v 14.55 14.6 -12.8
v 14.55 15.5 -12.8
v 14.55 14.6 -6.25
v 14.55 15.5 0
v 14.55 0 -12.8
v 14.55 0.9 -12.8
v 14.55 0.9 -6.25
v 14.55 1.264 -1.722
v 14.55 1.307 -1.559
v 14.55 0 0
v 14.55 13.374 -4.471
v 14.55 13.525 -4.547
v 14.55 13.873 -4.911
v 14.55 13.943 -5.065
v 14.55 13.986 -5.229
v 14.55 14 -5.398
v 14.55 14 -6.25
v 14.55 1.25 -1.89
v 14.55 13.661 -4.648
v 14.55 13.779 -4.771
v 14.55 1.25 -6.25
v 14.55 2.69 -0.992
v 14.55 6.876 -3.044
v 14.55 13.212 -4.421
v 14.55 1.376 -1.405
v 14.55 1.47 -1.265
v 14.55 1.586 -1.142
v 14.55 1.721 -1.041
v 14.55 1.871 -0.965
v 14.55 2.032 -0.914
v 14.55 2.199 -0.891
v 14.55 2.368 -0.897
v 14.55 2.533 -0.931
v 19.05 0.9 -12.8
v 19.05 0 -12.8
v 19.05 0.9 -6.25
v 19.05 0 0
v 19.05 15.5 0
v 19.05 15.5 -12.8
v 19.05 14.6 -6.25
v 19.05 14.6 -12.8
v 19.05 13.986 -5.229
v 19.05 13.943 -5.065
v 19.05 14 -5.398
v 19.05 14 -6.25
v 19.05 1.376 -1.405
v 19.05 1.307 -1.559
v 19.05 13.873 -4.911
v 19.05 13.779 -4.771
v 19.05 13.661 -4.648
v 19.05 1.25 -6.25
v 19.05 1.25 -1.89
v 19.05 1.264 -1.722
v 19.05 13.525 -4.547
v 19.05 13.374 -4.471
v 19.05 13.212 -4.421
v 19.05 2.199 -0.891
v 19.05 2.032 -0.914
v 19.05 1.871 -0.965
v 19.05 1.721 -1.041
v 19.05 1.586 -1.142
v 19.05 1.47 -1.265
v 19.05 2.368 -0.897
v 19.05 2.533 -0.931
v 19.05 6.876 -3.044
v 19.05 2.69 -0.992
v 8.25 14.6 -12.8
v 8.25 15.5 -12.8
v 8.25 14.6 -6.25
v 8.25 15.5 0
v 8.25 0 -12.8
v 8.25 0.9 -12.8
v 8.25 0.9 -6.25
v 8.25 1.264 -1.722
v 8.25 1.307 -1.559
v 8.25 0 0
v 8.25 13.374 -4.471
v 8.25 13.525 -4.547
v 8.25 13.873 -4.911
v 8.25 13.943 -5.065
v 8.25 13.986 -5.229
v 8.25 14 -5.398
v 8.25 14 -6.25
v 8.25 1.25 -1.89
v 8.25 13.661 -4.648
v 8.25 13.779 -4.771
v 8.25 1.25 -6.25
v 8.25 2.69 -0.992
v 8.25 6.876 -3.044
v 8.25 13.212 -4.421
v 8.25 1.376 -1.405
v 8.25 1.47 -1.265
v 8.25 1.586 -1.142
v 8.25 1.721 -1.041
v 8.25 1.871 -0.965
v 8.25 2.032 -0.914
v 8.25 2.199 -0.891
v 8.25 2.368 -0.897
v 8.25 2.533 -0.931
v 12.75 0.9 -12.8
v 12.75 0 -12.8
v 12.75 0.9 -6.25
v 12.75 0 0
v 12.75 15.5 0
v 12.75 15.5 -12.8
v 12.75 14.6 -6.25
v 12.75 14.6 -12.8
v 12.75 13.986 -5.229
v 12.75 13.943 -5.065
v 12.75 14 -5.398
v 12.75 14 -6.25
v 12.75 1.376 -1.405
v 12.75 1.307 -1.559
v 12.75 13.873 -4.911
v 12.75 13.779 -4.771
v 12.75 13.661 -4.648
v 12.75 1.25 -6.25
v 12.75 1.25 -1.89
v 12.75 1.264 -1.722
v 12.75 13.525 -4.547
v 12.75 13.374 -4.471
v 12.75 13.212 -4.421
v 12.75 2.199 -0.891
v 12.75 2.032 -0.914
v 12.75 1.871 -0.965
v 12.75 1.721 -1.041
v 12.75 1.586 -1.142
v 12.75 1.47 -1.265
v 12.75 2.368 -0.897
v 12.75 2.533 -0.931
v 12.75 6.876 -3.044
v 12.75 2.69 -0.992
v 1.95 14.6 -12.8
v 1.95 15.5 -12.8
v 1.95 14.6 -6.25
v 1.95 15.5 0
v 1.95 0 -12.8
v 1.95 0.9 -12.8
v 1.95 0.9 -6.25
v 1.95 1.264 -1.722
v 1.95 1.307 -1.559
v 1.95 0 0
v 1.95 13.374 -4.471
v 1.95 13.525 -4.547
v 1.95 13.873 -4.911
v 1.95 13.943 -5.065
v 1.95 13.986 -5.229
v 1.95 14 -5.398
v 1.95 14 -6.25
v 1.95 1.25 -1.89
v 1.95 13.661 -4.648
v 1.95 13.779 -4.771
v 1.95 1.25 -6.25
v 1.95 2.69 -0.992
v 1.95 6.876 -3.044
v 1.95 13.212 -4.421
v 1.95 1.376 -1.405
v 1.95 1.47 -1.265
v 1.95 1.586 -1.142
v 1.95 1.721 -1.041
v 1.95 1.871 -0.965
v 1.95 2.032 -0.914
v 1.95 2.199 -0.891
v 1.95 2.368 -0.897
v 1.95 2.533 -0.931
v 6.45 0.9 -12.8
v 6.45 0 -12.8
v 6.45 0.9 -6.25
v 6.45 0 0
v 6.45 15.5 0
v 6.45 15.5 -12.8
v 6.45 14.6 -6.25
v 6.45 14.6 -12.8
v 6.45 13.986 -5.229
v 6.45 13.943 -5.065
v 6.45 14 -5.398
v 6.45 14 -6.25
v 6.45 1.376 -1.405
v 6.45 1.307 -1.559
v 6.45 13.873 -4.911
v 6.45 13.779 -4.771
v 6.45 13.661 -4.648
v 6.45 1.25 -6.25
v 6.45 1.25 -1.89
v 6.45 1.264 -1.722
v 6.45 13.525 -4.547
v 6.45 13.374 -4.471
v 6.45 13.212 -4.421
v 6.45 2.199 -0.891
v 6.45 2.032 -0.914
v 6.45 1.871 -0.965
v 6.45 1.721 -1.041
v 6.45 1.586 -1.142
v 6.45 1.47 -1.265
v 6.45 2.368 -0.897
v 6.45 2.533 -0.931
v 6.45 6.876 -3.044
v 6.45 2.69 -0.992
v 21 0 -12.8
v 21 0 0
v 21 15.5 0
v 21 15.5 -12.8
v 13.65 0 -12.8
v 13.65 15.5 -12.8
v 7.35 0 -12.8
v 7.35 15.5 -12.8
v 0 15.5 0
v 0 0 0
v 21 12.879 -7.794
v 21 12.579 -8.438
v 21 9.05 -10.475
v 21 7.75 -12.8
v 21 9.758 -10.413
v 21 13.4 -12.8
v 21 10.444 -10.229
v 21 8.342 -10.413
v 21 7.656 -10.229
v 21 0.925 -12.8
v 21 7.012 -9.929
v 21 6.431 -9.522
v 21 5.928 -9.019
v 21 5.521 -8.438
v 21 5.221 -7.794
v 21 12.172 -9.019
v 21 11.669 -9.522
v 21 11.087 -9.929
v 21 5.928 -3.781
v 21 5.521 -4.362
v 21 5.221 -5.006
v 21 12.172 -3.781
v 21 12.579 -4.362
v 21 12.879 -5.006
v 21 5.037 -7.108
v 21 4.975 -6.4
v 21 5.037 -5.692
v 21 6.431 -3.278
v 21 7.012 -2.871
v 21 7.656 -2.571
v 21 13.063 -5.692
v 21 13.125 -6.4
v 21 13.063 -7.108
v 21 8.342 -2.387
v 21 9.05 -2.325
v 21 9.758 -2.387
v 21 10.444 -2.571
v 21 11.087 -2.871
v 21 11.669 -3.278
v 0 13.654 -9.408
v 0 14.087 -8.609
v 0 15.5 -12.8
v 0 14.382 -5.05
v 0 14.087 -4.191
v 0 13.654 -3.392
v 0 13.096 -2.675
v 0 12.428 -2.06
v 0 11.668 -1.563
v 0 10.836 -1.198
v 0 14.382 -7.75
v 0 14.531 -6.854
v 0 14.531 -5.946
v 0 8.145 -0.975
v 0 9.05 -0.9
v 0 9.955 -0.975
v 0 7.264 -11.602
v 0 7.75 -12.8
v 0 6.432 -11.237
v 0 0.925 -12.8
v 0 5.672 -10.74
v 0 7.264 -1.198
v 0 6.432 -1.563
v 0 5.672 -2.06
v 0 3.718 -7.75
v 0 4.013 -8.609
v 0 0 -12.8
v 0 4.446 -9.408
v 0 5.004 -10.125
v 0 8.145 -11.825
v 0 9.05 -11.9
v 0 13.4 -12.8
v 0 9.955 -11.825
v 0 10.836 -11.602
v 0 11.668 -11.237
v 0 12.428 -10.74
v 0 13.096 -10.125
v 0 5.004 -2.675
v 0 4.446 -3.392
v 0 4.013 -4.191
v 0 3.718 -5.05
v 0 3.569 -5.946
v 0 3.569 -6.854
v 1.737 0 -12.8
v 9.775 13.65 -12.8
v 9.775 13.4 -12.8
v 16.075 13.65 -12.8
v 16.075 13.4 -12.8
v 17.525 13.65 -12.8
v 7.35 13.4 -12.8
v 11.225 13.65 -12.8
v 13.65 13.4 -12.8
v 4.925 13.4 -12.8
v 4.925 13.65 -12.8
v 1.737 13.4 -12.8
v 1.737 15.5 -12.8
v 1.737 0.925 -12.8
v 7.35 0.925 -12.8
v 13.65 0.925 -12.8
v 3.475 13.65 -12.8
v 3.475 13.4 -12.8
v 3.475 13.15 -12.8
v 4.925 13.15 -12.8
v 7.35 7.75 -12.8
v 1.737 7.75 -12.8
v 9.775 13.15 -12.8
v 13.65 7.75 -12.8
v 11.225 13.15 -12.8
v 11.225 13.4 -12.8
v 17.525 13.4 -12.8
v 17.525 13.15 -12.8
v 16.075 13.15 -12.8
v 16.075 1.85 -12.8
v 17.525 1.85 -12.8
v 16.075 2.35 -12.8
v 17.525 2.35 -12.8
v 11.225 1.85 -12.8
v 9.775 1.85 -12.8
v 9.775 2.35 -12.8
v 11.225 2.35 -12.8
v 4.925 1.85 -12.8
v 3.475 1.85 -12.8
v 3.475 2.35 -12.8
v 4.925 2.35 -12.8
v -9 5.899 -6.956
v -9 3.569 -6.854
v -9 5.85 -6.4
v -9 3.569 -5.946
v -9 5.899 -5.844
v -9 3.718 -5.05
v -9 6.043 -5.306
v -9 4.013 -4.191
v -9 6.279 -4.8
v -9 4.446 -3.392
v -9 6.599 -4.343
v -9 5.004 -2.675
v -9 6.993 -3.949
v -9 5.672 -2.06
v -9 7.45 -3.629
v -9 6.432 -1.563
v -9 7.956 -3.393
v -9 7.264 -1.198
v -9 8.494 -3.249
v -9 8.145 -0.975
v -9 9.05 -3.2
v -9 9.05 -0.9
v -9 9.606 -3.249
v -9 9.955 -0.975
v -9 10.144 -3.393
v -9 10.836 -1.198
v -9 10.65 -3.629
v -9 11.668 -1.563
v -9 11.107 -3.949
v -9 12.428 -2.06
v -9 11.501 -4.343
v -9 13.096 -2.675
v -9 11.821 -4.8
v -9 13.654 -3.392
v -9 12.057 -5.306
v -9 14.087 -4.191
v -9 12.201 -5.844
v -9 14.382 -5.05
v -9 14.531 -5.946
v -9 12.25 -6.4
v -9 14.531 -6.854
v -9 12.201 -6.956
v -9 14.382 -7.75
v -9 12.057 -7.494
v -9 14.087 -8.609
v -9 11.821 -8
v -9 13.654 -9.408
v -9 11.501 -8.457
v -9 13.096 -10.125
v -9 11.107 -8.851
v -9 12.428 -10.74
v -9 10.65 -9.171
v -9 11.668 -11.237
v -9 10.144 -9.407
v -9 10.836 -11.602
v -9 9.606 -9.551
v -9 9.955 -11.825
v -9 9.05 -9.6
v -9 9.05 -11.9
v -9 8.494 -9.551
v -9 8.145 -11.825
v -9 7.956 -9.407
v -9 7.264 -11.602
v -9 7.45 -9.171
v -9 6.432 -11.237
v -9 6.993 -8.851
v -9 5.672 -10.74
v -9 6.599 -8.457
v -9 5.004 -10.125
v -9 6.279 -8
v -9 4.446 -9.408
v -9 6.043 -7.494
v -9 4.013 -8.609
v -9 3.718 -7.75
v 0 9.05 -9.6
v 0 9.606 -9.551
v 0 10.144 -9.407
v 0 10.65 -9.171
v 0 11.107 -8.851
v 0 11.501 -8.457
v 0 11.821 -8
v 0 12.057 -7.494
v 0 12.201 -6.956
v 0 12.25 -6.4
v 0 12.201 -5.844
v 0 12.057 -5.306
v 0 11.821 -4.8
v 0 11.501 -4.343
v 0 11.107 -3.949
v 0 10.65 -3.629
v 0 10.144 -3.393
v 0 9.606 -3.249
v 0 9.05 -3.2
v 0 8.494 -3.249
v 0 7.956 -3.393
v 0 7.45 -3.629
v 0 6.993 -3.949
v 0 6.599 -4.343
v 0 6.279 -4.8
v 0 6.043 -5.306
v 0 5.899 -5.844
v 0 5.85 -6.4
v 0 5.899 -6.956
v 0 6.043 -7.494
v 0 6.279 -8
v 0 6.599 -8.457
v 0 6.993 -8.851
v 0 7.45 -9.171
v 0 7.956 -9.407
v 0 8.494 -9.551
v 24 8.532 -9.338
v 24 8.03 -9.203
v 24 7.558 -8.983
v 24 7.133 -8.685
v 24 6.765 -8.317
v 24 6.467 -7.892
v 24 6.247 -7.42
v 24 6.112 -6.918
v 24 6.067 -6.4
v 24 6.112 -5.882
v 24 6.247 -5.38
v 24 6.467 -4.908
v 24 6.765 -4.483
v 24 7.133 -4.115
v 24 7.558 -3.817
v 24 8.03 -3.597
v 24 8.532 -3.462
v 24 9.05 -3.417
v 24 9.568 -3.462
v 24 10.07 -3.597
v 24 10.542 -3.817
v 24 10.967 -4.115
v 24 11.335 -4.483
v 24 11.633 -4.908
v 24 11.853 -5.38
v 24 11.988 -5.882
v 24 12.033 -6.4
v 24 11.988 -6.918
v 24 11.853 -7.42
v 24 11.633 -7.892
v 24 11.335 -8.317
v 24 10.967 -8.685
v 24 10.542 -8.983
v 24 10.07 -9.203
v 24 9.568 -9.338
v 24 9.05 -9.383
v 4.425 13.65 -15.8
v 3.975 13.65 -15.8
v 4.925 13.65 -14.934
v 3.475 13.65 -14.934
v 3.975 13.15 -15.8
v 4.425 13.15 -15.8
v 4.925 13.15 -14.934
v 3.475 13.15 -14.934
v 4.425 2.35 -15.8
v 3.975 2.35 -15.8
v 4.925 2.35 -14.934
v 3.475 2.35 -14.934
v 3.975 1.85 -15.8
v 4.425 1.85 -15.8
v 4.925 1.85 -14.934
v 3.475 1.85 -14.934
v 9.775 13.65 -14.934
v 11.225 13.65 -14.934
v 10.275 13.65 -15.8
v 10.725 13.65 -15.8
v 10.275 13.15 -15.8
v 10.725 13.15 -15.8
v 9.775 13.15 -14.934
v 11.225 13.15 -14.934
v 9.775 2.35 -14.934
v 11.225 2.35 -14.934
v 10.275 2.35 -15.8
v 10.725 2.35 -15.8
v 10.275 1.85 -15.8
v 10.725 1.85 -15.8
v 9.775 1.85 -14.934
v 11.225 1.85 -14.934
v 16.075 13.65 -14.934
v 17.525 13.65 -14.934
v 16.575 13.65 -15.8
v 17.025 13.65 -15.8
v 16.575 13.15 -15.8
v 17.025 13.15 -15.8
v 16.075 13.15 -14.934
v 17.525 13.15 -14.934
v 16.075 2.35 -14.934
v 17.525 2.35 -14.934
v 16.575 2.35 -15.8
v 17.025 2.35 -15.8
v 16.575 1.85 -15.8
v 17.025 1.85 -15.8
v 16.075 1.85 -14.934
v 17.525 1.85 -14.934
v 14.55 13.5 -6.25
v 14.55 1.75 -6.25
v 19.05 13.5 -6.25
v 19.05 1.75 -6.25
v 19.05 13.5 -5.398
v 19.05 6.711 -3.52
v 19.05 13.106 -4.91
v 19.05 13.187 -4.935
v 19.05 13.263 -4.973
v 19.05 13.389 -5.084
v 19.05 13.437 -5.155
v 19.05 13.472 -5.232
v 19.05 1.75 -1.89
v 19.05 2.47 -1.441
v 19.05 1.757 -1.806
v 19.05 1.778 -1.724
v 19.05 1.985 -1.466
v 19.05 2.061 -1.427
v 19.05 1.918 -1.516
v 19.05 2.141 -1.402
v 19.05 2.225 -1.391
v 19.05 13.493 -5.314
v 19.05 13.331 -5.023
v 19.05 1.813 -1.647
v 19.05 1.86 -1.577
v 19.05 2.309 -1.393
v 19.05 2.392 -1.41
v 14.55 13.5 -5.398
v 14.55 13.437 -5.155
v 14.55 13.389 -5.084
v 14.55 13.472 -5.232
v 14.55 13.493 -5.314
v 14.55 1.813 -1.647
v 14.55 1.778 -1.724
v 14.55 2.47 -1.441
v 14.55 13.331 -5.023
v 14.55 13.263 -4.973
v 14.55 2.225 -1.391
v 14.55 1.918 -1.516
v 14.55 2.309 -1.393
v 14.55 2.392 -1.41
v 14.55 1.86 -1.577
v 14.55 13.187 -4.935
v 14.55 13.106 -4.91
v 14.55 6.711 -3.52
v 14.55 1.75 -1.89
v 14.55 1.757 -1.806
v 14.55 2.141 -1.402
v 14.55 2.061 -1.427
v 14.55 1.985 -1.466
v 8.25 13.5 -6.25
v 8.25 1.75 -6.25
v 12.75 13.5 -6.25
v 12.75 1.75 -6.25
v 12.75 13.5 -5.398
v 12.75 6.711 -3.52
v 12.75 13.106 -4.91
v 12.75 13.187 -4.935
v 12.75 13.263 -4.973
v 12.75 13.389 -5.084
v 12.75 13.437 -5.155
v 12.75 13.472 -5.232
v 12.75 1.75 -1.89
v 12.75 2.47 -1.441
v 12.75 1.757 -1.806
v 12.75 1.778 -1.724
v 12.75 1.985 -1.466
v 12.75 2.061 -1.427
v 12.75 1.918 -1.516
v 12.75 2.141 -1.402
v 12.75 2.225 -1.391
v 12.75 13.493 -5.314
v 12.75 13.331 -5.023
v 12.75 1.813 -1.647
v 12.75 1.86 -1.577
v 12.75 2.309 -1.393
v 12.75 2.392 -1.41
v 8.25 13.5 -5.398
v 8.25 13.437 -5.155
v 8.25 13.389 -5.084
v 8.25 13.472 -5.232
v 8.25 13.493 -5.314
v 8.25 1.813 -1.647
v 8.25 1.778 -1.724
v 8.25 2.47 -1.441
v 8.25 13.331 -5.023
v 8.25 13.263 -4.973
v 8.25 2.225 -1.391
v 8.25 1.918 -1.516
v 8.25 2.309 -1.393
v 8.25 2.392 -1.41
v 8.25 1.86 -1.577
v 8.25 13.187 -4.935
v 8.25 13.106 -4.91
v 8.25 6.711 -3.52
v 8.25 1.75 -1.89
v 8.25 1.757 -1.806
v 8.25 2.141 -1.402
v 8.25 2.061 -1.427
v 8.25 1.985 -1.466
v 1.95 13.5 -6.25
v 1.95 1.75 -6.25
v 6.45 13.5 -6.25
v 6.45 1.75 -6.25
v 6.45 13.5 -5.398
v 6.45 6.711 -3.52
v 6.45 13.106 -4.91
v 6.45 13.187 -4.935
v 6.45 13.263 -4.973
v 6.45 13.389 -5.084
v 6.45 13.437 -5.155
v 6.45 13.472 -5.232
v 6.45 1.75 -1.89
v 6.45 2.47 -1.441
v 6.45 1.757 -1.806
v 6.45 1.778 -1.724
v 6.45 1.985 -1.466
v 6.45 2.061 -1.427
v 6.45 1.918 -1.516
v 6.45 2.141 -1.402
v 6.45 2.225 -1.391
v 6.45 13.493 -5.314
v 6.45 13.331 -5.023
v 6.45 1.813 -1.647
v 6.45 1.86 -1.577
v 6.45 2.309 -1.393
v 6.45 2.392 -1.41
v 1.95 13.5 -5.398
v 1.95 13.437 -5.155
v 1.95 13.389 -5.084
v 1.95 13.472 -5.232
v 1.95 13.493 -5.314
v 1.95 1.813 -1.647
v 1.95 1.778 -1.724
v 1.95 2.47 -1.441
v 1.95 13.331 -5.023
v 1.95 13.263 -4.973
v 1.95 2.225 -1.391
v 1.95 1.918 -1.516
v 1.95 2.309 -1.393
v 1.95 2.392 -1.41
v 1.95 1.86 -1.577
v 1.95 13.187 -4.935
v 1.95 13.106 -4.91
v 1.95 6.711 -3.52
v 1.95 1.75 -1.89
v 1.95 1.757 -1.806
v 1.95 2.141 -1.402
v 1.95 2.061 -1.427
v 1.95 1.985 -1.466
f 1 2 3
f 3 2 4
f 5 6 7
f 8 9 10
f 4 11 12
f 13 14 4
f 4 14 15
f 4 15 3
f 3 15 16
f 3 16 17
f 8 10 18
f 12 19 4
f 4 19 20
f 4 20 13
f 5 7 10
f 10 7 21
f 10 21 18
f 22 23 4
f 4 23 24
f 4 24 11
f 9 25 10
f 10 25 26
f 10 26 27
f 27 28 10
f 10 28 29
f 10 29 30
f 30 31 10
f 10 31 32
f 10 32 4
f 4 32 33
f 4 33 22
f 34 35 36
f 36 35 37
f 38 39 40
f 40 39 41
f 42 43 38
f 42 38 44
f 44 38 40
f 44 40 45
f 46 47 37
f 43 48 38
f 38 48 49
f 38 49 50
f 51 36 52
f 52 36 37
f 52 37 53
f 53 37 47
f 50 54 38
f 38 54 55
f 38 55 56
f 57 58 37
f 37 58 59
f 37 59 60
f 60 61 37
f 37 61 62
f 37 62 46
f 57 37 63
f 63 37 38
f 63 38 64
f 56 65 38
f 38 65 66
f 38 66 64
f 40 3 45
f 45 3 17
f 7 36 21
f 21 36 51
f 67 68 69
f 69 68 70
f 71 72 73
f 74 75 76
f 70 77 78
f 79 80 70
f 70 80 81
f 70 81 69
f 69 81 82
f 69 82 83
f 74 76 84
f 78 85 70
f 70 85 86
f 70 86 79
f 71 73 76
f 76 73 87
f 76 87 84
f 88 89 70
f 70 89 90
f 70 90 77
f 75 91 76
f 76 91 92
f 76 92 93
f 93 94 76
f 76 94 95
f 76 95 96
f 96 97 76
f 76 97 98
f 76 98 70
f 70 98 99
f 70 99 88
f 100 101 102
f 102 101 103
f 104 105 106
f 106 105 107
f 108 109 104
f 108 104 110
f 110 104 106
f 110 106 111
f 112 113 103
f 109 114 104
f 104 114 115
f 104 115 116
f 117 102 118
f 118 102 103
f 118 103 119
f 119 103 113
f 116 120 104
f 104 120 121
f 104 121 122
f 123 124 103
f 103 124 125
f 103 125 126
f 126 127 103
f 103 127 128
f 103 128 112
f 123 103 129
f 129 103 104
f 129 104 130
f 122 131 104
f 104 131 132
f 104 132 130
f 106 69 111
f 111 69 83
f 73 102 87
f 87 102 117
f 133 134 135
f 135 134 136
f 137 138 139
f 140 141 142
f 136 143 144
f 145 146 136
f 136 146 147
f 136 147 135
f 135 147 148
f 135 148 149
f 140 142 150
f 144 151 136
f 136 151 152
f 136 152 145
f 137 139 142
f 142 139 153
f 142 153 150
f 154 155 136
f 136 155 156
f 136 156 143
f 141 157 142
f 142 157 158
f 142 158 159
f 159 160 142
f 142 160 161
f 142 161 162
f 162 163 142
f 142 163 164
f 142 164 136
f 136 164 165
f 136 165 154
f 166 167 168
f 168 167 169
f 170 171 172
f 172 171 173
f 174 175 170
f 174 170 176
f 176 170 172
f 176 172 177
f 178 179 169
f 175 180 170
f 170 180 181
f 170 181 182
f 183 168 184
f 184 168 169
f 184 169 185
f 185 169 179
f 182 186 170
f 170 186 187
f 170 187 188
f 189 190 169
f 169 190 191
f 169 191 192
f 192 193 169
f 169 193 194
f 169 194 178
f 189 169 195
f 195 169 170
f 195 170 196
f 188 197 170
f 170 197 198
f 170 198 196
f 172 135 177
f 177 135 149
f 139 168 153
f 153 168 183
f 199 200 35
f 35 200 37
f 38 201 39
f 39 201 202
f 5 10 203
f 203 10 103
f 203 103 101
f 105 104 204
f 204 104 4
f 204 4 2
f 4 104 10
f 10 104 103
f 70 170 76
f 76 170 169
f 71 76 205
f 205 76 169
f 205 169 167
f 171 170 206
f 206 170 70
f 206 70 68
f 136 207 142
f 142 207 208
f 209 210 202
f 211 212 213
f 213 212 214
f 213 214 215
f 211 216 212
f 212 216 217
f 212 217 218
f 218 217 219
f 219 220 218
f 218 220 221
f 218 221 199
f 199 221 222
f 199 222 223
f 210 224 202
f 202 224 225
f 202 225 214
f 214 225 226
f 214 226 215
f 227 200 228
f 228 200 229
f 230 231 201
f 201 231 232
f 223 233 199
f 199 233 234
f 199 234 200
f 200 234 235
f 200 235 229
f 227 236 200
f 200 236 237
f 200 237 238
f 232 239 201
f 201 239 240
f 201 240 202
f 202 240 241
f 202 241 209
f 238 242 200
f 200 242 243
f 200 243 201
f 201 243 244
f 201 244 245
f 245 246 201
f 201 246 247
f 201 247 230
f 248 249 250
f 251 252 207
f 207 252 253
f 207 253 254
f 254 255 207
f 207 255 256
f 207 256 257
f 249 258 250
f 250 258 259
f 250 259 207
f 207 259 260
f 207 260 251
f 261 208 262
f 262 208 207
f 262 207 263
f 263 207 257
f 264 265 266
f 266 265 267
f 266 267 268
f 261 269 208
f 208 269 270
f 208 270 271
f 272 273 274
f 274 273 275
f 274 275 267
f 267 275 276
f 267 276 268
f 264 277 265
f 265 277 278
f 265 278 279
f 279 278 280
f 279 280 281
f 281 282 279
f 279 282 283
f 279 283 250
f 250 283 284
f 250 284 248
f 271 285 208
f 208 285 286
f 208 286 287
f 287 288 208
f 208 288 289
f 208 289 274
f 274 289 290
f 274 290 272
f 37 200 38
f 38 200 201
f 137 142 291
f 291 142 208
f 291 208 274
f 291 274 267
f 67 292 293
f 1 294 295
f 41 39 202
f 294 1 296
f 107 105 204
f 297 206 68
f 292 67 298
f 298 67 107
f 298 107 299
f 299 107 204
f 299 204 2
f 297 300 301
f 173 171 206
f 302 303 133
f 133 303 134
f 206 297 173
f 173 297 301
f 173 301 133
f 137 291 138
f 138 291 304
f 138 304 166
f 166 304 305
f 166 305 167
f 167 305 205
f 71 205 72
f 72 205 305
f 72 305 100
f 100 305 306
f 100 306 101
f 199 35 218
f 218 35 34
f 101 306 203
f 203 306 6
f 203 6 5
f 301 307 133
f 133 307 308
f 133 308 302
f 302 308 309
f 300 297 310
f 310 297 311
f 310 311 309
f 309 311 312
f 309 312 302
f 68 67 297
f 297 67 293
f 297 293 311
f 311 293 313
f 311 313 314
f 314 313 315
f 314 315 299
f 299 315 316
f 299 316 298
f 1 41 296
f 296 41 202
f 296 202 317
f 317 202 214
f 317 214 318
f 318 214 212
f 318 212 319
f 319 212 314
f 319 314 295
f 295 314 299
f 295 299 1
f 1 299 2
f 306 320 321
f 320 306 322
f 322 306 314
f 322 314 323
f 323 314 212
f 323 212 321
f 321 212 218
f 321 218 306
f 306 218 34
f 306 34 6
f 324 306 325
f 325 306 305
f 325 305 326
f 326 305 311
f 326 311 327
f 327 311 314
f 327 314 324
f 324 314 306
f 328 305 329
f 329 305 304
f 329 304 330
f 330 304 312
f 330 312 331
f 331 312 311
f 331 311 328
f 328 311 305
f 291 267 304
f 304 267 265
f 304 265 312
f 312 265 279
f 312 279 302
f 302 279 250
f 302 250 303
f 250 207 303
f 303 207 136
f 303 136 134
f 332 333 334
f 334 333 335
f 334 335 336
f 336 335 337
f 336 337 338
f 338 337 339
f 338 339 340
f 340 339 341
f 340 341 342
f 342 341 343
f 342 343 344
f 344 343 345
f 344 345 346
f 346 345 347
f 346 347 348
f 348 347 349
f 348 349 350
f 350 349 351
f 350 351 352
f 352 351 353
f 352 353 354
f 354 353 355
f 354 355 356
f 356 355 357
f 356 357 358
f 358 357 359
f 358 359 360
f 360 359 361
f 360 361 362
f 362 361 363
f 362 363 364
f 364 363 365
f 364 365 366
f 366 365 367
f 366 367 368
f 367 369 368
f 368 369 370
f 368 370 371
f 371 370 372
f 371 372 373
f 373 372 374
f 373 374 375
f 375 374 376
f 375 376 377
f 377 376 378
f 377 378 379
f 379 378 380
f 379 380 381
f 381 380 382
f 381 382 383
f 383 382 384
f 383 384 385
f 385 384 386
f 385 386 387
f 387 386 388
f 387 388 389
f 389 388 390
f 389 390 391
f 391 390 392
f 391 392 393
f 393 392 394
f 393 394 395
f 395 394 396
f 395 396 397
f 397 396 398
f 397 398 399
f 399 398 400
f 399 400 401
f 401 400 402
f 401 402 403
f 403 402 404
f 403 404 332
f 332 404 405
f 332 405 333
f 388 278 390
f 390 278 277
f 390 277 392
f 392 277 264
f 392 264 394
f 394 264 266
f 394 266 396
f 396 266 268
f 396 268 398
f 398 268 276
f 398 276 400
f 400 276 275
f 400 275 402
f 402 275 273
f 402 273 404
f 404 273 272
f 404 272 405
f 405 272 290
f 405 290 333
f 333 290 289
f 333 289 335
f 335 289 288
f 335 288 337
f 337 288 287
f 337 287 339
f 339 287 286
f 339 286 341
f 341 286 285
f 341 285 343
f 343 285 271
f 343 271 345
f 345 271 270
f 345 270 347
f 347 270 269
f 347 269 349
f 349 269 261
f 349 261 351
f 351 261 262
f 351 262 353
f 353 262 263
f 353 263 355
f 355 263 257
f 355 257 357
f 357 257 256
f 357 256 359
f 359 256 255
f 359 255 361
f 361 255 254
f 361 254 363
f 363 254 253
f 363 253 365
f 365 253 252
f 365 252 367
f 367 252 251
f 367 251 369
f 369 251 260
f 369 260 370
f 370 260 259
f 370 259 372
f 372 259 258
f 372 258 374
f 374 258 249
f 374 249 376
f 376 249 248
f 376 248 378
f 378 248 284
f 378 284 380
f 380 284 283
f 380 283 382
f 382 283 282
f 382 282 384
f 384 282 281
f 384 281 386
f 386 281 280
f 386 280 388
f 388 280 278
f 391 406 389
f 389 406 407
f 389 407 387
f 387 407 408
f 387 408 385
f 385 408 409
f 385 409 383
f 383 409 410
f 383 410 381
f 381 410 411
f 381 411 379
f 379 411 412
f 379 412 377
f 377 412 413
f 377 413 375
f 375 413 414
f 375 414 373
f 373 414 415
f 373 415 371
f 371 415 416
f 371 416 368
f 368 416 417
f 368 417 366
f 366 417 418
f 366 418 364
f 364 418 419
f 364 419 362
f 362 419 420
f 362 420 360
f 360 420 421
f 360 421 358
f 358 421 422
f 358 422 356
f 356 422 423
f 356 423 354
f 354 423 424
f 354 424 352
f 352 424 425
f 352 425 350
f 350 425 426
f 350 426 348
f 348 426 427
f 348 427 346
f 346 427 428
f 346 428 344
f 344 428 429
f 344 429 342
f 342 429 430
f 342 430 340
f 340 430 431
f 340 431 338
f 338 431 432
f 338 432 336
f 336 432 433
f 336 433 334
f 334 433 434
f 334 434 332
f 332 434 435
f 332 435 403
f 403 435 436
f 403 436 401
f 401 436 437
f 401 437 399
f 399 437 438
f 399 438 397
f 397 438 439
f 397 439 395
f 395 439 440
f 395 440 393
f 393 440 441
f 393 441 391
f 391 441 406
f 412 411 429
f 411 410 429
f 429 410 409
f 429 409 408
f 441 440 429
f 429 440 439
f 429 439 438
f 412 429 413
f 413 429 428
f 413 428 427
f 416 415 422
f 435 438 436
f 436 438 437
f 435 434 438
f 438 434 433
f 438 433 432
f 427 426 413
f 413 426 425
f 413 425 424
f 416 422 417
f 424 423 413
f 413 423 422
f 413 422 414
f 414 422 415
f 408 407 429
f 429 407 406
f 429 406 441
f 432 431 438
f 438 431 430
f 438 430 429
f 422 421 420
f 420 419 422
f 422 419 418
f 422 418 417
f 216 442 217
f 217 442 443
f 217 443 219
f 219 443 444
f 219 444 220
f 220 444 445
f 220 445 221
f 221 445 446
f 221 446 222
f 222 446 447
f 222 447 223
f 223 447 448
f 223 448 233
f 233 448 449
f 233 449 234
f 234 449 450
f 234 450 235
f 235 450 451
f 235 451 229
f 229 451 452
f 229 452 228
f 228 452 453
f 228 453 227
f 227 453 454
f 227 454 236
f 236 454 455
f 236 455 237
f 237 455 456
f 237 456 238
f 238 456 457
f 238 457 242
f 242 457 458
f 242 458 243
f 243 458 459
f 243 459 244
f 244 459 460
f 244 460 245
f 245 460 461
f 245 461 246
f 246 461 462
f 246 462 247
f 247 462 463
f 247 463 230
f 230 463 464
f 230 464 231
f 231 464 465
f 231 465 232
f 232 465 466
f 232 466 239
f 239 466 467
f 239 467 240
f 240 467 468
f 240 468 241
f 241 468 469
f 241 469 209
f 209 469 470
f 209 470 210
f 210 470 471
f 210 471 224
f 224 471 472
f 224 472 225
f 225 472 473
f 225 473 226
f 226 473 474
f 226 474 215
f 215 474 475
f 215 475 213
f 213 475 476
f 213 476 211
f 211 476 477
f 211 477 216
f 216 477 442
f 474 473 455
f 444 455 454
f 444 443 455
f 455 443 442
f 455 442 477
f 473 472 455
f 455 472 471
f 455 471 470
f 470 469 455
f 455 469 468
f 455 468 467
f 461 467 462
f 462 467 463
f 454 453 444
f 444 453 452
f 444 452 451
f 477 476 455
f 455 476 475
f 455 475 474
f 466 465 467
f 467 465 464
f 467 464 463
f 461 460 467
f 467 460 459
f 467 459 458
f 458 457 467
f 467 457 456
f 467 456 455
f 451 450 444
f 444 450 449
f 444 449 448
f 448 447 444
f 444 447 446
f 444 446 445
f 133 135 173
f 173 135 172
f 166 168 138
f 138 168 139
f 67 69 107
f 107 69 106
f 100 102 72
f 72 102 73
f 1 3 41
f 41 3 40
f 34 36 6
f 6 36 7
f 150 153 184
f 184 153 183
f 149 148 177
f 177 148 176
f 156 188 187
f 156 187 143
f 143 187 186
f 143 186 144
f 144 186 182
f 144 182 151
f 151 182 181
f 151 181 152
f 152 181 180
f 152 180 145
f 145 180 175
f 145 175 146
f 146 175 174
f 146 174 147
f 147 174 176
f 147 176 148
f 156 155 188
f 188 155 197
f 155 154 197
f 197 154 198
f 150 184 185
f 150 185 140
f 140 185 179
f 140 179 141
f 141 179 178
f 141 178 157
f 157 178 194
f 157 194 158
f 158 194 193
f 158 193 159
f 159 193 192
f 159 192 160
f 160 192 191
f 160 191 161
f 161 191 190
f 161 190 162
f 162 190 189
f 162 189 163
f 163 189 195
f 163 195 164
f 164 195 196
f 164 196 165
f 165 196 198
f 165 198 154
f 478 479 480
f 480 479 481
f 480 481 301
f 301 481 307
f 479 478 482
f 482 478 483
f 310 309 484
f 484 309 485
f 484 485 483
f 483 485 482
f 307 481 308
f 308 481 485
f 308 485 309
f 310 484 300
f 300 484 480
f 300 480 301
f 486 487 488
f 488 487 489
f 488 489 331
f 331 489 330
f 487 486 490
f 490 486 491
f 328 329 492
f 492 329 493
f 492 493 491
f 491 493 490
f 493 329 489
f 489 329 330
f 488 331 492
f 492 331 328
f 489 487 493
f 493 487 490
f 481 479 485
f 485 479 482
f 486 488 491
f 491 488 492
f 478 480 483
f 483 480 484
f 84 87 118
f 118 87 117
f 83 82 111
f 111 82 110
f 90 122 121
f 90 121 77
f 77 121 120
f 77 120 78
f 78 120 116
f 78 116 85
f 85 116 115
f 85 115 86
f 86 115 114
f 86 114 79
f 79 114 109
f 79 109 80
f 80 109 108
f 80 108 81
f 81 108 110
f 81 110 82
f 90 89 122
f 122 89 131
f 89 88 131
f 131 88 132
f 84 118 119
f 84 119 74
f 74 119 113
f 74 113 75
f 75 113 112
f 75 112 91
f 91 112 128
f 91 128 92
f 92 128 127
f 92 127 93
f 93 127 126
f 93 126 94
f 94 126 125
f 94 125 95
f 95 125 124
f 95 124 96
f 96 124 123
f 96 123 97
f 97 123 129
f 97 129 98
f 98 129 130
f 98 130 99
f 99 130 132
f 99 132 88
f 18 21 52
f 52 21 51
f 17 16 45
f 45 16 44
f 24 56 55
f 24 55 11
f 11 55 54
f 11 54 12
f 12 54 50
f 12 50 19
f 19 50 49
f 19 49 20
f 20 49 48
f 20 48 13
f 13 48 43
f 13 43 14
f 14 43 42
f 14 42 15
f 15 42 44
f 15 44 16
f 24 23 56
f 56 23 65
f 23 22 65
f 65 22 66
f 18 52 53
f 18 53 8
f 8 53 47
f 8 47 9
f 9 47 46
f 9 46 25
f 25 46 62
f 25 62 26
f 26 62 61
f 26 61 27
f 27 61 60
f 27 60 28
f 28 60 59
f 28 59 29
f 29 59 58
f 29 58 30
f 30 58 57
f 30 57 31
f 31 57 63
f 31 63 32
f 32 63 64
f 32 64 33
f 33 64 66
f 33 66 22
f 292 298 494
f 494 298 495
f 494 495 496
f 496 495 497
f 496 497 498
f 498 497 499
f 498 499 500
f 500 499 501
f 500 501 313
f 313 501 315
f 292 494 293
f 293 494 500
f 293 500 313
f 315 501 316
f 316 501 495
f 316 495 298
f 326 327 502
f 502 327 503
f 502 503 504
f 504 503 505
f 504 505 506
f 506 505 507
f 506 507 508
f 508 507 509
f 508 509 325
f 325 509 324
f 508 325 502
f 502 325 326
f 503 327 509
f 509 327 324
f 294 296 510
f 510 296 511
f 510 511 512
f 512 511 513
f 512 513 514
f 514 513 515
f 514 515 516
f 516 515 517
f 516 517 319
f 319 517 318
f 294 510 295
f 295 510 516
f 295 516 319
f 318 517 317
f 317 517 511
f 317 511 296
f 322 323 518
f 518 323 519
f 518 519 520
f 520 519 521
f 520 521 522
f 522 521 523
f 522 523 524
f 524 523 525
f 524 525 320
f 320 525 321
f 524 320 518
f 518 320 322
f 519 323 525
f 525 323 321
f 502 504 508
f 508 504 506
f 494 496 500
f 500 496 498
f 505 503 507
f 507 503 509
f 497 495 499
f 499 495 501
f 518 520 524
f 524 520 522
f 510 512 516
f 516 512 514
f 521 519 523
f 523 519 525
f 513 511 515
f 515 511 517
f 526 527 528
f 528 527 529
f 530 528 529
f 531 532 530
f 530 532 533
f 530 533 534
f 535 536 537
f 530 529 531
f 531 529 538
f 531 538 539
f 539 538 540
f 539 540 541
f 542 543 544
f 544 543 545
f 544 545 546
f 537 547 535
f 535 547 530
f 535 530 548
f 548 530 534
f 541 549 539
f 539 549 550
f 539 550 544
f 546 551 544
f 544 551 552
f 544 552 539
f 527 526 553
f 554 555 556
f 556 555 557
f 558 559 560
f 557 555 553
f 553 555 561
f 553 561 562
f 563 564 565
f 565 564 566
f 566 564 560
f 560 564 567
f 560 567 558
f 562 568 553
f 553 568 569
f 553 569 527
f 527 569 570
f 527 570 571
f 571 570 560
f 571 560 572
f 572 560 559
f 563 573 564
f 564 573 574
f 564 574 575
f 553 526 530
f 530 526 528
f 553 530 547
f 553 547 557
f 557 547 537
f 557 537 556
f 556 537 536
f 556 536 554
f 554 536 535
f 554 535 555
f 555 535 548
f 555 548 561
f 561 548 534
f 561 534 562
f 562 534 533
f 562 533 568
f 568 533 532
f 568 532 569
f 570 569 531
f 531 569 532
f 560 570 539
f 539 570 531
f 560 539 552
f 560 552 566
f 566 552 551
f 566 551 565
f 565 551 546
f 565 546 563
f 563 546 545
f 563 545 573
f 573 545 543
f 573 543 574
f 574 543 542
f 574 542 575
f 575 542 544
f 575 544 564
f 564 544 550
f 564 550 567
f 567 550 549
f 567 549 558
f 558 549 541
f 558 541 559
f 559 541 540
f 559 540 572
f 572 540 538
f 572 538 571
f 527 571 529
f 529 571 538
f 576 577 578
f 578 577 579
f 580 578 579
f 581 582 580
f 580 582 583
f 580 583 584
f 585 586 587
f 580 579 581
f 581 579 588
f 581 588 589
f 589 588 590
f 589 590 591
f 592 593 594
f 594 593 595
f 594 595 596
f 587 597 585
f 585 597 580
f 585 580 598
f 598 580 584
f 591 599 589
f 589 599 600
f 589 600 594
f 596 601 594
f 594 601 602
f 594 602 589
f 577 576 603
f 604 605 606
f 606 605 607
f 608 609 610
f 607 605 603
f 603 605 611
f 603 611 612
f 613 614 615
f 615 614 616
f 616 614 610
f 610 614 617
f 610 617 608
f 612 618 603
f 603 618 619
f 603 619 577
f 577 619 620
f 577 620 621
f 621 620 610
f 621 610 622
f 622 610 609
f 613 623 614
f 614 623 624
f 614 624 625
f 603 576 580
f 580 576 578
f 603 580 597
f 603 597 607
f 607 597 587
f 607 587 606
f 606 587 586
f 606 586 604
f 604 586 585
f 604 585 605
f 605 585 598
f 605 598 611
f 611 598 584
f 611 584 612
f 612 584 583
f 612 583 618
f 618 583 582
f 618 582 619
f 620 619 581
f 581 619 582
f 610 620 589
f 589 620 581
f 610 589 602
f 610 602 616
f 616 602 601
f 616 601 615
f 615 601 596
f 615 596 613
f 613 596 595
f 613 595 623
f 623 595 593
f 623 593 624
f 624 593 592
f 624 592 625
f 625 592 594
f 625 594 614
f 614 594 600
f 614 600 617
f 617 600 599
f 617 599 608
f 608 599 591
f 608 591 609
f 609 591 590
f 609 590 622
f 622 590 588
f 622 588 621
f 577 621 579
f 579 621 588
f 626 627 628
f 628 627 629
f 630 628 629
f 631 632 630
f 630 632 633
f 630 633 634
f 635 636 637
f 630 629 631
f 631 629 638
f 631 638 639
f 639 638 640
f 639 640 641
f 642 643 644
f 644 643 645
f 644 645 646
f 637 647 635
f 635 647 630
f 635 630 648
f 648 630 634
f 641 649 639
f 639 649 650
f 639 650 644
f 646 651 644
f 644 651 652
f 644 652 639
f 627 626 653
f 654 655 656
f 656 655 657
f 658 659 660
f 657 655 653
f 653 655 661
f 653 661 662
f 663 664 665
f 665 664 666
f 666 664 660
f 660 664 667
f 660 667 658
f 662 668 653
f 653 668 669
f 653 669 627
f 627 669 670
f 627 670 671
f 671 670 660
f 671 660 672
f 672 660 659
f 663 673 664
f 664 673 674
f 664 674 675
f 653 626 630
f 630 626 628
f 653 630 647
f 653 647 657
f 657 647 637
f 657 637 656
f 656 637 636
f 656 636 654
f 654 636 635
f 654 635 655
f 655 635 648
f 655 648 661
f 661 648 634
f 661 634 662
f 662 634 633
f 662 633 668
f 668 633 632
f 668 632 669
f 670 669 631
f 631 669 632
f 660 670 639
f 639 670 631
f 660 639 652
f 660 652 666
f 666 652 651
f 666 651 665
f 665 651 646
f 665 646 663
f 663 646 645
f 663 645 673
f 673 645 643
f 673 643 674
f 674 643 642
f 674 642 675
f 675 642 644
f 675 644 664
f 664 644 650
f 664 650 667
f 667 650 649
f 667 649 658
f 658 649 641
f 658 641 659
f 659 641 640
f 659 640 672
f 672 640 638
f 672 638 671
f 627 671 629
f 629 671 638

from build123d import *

# Parameters (mm, degrees)
SKETCH1_W                          = 12.8
SKETCH1_H                          = 15.5
BOSS_EXTRUDE1_DEPTH                = 21
SKETCH2_R                          = 5.5
SKETCH2_R_2                        = 3.2
BOSS_EXTRUDE2_DEPTH                = 9
SKETCH3_R                          = 4.075
BOSS_EXTRUDE3_DEPTH                = 3
BOSS_EXTRUDE3_TAPER                = 20
SKETCH6_W                          = 4.5
SKETCH6_H                          = 6.25
CUT_EXTRUDE1_DEPTH                 = 15.5
SKETCH7_W                          = 4.5
SKETCH7_H                          = 0.9
CUT_EXTRUDE2_DEPTH                 = 9
LPATTERN1_COUNT                    = 3
LPATTERN1_PITCH                    = 6.3
EXTRUDE_THIN1_DEPTH                = 2.25
SKETCH9_W                          = 3
SKETCH9_H                          = 0.5
EXTRUDE_THIN2_DEPTH                = 0.725
CHAMFER1_SIZE                      = 0.5
CHAMFER1_SIZE2                     = 0.866025404
CHAMFER1_PART_2_SIZE               = 0.5
CHAMFER1_PART_2_SIZE2              = 0.866025404
LPATTERN2_COUNT                    = 3
LPATTERN2_PITCH                    = 6.3
CHAMFER1_OF_LPATTERN2_SIZE2        = 0.5
CHAMFER1_OF_LPATTERN2_SIZE         = 0.866025404
CHAMFER1_PART_2_OF_LPATTERN2_SIZE2 = 0.5
CHAMFER1_PART_2_OF_LPATTERN2_SIZE  = 0.866025404


with BuildPart() as part:
    # Sketch1 → Boss-Extrude1 (new body)
    with BuildSketch(Plane(origin=(0, 0, 0), x_dir=(0, 0, -1), z_dir=(1, 0, 0))):
        with Locations((6.4, 7.75)):
            Rectangle(SKETCH1_W, SKETCH1_H)
    extrude(amount=BOSS_EXTRUDE1_DEPTH)

    # Sketch2 → Boss-Extrude2 (add)
    with BuildSketch(Plane.ZY):
        with Locations((-6.4, 9.05)):
            Circle(SKETCH2_R)
        with Locations((-6.4, 9.05)):
            Circle(SKETCH2_R_2, mode=Mode.SUBTRACT)
    extrude(amount=BOSS_EXTRUDE2_DEPTH)

    # Sketch3 → Boss-Extrude3 (add)
    with BuildSketch(Plane(origin=(21, 0, 0), x_dir=(0, 0, -1), z_dir=(1, 0, 0))):
        with Locations((6.4, 9.05)):
            Circle(SKETCH3_R)
    extrude(amount=BOSS_EXTRUDE3_DEPTH, taper=BOSS_EXTRUDE3_TAPER)

    # Sketch6 → Cut-Extrude1 (cut)
    with BuildSketch(Plane.XZ):
        with Locations((4.2, -3.125)):
            Rectangle(SKETCH6_W, SKETCH6_H)
    cut_extrude1 = extrude(amount=-CUT_EXTRUDE1_DEPTH, mode=Mode.SUBTRACT)

    # Sketch7 → Cut-Extrude2 (cut)
    with BuildSketch(Plane(origin=(0, 0, -12.8), x_dir=(-1, 0, 0), z_dir=(0, 0, -1))):
        with Locations((-4.2, 15.05)):
            Rectangle(SKETCH7_W, SKETCH7_H)
        with Locations((-4.2, 0.45)):
            Rectangle(SKETCH7_W, SKETCH7_H)
    cut_extrude2 = extrude(amount=-CUT_EXTRUDE2_DEPTH, mode=Mode.SUBTRACT)

    # LPattern1: Cut-Extrude1, Cut-Extrude2 ×3
    with Locations(*[(i * LPATTERN1_PITCH, 0, 0) for i in range(1, LPATTERN1_COUNT)]):
        add(cut_extrude1, mode=Mode.SUBTRACT)
        add(cut_extrude2, mode=Mode.SUBTRACT)

    # Sketch8 → Extrude-Thin1 (add, symmetric)
    with BuildSketch(Plane.ZY.offset(-4.2)):
        with BuildLine():
            Line((-6.25, 13.5), (-5.398229918, 13.5))
            ThreePointArc((-5.398229918, 13.5), (-5.084448593, 13.389283033), (-4.909630934, 13.106165118))
            Line((-4.909630934, 13.106165118), (-3.519996024, 6.710710403))
            Line((-3.519996024, 6.710710403), (-1.441008044, 2.470100604))
            ThreePointArc((-1.441008044, 2.470100604), (-1.465663914, 1.985472404), (-1.889957622, 1.75))
            Line((-1.889957622, 1.75), (-6.25, 1.75))
            Line((-6.25, 1.75), (-6.25, 1.25))
            Line((-6.25, 1.25), (-1.889957622, 1.25))
            ThreePointArc((-1.889957622, 1.25), (-1.041370205, 1.720944808), (-0.992058465, 2.690201208))
            Line((-0.992058465, 2.690201208), (-3.044298744, 6.876252459))
            Line((-3.044298744, 6.876252459), (-4.421031949, 13.212330236))
            ThreePointArc((-4.421031949, 13.212330236), (-4.770667267, 13.778566065), (-5.398229918, 14))
            Line((-5.398229918, 14), (-6.25, 14))
            Line((-6.25, 14), (-6.25, 13.5))
        make_face()
    extrude_thin1 = extrude(amount=EXTRUDE_THIN1_DEPTH, both=True)

    # Sketch9 → Extrude-Thin2 (add, symmetric)
    with BuildSketch(Plane.ZY.offset(-4.2)):
        with Locations((-14.3, 13.4)):
            Rectangle(SKETCH9_W, SKETCH9_H)
        with Locations((-14.3, 2.1)):
            Rectangle(SKETCH9_W, SKETCH9_H)
    extrude_thin2 = extrude(amount=EXTRUDE_THIN2_DEPTH, both=True)

    # Chamfer1
    chamfer1_edges = [part.edges().sort_by_distance(p)[0] for p in [
        (3.475, 13.4, -15.8),
        (4.925, 13.4, -15.8),
    ]]
    chamfer1_side = [part.faces().sort_by_distance(p)[0] for p in [
        (4.2, 13.4, -15.8),
    ]]
    chamfer(chamfer1_edges, length=CHAMFER1_SIZE, length2=CHAMFER1_SIZE2, reference=chamfer1_side[0])

    # Chamfer1 part 2
    chamfer1_part_2_edges = [part.edges().sort_by_distance(p)[0] for p in [
        (3.475, 2.1, -15.8),
        (4.925, 2.1, -15.8),
    ]]
    chamfer1_part_2_side = [part.faces().sort_by_distance(p)[0] for p in [
        (4.2, 2.1, -15.8),
    ]]
    chamfer(chamfer1_part_2_edges, length=CHAMFER1_PART_2_SIZE, length2=CHAMFER1_PART_2_SIZE2, reference=chamfer1_part_2_side[0])

    # LPattern2: Extrude-Thin1, Extrude-Thin2 ×3
    with Locations(*[(i * LPATTERN2_PITCH, 0, 0) for i in range(1, LPATTERN2_COUNT)]):
        add(extrude_thin1)
        add(extrude_thin2)

    # Chamfer1 of LPattern2
    chamfer1_of_lpattern2_edges = [part.edges().sort_by_distance(p)[0] for p in [
        (9.775, 13.4, -15.8),
        (11.225, 13.4, -15.8),
        (16.075, 13.4, -15.8),
        (17.525, 13.4, -15.8),
    ]]
    chamfer(chamfer1_of_lpattern2_edges, length=CHAMFER1_OF_LPATTERN2_SIZE, length2=CHAMFER1_OF_LPATTERN2_SIZE2)

    # Chamfer1 part 2 of LPattern2
    chamfer1_part_2_of_lpattern2_edges = [part.edges().sort_by_distance(p)[0] for p in [
        (9.775, 2.1, -15.8),
        (11.225, 2.1, -15.8),
        (16.075, 2.1, -15.8),
        (17.525, 2.1, -15.8),
    ]]
    chamfer(chamfer1_part_2_of_lpattern2_edges, length=CHAMFER1_PART_2_OF_LPATTERN2_SIZE, length2=CHAMFER1_PART_2_OF_LPATTERN2_SIZE2)


solid = part.part
